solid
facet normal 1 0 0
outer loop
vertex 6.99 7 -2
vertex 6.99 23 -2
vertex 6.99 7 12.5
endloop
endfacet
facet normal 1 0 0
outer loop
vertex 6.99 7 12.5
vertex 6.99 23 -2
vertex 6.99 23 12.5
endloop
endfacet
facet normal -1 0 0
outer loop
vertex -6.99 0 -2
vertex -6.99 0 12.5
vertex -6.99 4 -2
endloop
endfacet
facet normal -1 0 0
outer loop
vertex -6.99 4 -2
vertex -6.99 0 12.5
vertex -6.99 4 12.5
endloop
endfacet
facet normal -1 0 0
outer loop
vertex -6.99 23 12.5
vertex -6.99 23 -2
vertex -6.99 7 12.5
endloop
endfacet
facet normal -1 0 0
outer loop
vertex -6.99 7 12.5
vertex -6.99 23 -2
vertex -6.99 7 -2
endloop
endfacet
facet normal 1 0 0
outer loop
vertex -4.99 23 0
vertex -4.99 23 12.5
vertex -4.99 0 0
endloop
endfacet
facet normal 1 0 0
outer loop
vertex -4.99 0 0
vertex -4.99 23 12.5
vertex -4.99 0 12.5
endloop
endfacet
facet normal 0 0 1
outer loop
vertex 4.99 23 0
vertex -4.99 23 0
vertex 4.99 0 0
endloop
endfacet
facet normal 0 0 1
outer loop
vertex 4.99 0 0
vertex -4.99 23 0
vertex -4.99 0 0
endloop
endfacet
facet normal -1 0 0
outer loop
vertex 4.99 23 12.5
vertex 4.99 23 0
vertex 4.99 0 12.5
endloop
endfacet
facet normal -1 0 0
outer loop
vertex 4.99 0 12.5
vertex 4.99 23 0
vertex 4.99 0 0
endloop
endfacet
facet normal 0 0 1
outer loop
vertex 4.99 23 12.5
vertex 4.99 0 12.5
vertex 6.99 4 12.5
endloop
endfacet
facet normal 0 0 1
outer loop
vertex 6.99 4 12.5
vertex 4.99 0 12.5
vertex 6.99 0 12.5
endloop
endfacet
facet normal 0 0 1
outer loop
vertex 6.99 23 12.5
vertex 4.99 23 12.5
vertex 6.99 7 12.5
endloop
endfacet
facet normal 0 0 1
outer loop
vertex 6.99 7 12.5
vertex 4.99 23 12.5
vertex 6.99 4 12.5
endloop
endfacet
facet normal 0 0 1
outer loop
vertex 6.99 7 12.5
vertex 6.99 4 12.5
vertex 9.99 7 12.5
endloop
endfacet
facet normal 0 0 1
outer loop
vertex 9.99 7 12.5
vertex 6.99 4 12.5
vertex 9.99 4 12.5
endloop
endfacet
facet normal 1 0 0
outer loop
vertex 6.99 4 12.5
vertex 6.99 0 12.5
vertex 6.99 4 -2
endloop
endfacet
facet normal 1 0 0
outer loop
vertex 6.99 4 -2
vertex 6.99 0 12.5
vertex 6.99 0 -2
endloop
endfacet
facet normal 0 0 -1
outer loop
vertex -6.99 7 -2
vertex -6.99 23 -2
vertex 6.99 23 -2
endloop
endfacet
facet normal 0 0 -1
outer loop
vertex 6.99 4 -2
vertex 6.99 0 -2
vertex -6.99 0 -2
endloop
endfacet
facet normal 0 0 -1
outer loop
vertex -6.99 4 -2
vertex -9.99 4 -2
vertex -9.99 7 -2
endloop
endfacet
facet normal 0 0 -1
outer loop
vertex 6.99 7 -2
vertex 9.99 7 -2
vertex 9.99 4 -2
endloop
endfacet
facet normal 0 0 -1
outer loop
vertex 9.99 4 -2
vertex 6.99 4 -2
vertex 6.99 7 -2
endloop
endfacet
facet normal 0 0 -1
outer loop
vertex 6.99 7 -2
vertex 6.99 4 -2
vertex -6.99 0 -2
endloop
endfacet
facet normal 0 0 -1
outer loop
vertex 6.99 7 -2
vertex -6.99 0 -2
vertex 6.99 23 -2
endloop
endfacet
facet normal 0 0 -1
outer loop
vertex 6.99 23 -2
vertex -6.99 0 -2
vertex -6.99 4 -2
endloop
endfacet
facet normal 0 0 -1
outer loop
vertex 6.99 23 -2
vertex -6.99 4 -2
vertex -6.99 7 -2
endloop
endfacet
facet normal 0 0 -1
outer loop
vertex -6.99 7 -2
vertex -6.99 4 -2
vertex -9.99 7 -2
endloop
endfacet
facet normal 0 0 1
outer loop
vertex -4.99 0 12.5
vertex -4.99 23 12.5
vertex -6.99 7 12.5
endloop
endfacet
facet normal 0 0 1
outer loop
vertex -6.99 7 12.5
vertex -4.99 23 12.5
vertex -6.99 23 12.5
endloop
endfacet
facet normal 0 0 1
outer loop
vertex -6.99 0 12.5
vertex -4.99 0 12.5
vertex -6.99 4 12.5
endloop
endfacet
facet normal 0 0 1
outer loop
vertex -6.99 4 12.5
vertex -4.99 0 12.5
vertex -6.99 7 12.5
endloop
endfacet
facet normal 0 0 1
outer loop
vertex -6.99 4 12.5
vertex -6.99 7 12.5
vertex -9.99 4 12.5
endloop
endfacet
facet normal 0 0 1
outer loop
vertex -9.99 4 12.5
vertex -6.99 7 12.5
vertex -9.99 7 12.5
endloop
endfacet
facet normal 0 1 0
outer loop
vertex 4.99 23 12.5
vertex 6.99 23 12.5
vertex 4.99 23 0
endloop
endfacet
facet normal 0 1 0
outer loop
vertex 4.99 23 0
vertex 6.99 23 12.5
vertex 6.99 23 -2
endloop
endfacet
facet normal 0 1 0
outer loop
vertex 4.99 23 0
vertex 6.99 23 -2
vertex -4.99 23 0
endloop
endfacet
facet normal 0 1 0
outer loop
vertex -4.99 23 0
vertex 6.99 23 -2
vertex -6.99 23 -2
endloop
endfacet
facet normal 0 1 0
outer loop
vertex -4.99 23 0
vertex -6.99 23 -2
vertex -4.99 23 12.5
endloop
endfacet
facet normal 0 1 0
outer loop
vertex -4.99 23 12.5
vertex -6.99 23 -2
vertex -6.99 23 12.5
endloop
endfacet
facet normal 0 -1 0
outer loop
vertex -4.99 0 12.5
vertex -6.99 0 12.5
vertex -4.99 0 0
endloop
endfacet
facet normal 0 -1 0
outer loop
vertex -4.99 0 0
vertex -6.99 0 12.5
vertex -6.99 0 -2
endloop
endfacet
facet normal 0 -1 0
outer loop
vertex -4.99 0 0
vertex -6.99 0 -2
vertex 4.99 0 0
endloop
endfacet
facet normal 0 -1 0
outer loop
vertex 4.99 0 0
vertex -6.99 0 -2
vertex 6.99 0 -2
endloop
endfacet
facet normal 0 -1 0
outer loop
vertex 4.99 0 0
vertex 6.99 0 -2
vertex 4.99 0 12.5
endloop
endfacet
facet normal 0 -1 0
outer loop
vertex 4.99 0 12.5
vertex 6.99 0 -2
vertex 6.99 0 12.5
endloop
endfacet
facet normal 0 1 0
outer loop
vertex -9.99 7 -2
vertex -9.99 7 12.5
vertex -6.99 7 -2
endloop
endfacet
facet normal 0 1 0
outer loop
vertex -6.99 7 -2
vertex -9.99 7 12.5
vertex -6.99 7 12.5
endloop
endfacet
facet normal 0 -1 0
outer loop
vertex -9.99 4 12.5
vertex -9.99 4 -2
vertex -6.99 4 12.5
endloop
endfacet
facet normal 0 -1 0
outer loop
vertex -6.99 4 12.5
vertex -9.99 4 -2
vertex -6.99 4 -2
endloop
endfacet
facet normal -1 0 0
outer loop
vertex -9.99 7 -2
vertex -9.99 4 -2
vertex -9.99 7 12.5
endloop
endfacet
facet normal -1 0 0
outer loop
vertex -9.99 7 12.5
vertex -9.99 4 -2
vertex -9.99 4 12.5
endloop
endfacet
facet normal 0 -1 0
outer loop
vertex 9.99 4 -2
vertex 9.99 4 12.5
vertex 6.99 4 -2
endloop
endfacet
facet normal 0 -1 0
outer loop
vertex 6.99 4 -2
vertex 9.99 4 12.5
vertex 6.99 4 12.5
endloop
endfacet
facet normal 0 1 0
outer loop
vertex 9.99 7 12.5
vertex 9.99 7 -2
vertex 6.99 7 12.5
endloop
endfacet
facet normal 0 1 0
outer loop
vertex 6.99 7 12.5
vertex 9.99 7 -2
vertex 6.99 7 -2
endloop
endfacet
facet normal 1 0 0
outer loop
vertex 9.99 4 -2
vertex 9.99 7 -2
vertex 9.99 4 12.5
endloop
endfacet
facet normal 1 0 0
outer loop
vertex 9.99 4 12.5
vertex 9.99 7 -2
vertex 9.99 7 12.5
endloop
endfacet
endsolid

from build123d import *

# Parameters (mm, degrees)
BOSS_EXTRUDE1_DEPTH = 23
SKETCH9_W           = 14.5
SKETCH9_H           = 3
BOSS_EXTRUDE4_DEPTH = 3


with BuildPart() as part:
    # Sketch1 → Boss-Extrude1 (new body)
    with BuildSketch(Plane(origin=(0, 0, 0), x_dir=(1, 0, 0), z_dir=(0, 1, 0))):
        Polygon((-4.99, 0), (4.99, 0), (4.99, -12.5), (6.99, -12.5), (6.99, 2), (-6.99, 2), (-6.99, -12.5), (-4.99, -12.5), align=None)
    extrude(amount=BOSS_EXTRUDE1_DEPTH)

    # Sketch9 → Boss-Extrude4 (add)
    with BuildSketch(Plane.ZY.offset(6.99)):
        with Locations((5.25, 5.5)):
            Rectangle(SKETCH9_W, SKETCH9_H)
    boss_extrude4 = extrude(amount=BOSS_EXTRUDE4_DEPTH)

    # Mirror1: Boss-Extrude4 across plane
    add(boss_extrude4.mirror(Plane.ZY))


solid = part.part
